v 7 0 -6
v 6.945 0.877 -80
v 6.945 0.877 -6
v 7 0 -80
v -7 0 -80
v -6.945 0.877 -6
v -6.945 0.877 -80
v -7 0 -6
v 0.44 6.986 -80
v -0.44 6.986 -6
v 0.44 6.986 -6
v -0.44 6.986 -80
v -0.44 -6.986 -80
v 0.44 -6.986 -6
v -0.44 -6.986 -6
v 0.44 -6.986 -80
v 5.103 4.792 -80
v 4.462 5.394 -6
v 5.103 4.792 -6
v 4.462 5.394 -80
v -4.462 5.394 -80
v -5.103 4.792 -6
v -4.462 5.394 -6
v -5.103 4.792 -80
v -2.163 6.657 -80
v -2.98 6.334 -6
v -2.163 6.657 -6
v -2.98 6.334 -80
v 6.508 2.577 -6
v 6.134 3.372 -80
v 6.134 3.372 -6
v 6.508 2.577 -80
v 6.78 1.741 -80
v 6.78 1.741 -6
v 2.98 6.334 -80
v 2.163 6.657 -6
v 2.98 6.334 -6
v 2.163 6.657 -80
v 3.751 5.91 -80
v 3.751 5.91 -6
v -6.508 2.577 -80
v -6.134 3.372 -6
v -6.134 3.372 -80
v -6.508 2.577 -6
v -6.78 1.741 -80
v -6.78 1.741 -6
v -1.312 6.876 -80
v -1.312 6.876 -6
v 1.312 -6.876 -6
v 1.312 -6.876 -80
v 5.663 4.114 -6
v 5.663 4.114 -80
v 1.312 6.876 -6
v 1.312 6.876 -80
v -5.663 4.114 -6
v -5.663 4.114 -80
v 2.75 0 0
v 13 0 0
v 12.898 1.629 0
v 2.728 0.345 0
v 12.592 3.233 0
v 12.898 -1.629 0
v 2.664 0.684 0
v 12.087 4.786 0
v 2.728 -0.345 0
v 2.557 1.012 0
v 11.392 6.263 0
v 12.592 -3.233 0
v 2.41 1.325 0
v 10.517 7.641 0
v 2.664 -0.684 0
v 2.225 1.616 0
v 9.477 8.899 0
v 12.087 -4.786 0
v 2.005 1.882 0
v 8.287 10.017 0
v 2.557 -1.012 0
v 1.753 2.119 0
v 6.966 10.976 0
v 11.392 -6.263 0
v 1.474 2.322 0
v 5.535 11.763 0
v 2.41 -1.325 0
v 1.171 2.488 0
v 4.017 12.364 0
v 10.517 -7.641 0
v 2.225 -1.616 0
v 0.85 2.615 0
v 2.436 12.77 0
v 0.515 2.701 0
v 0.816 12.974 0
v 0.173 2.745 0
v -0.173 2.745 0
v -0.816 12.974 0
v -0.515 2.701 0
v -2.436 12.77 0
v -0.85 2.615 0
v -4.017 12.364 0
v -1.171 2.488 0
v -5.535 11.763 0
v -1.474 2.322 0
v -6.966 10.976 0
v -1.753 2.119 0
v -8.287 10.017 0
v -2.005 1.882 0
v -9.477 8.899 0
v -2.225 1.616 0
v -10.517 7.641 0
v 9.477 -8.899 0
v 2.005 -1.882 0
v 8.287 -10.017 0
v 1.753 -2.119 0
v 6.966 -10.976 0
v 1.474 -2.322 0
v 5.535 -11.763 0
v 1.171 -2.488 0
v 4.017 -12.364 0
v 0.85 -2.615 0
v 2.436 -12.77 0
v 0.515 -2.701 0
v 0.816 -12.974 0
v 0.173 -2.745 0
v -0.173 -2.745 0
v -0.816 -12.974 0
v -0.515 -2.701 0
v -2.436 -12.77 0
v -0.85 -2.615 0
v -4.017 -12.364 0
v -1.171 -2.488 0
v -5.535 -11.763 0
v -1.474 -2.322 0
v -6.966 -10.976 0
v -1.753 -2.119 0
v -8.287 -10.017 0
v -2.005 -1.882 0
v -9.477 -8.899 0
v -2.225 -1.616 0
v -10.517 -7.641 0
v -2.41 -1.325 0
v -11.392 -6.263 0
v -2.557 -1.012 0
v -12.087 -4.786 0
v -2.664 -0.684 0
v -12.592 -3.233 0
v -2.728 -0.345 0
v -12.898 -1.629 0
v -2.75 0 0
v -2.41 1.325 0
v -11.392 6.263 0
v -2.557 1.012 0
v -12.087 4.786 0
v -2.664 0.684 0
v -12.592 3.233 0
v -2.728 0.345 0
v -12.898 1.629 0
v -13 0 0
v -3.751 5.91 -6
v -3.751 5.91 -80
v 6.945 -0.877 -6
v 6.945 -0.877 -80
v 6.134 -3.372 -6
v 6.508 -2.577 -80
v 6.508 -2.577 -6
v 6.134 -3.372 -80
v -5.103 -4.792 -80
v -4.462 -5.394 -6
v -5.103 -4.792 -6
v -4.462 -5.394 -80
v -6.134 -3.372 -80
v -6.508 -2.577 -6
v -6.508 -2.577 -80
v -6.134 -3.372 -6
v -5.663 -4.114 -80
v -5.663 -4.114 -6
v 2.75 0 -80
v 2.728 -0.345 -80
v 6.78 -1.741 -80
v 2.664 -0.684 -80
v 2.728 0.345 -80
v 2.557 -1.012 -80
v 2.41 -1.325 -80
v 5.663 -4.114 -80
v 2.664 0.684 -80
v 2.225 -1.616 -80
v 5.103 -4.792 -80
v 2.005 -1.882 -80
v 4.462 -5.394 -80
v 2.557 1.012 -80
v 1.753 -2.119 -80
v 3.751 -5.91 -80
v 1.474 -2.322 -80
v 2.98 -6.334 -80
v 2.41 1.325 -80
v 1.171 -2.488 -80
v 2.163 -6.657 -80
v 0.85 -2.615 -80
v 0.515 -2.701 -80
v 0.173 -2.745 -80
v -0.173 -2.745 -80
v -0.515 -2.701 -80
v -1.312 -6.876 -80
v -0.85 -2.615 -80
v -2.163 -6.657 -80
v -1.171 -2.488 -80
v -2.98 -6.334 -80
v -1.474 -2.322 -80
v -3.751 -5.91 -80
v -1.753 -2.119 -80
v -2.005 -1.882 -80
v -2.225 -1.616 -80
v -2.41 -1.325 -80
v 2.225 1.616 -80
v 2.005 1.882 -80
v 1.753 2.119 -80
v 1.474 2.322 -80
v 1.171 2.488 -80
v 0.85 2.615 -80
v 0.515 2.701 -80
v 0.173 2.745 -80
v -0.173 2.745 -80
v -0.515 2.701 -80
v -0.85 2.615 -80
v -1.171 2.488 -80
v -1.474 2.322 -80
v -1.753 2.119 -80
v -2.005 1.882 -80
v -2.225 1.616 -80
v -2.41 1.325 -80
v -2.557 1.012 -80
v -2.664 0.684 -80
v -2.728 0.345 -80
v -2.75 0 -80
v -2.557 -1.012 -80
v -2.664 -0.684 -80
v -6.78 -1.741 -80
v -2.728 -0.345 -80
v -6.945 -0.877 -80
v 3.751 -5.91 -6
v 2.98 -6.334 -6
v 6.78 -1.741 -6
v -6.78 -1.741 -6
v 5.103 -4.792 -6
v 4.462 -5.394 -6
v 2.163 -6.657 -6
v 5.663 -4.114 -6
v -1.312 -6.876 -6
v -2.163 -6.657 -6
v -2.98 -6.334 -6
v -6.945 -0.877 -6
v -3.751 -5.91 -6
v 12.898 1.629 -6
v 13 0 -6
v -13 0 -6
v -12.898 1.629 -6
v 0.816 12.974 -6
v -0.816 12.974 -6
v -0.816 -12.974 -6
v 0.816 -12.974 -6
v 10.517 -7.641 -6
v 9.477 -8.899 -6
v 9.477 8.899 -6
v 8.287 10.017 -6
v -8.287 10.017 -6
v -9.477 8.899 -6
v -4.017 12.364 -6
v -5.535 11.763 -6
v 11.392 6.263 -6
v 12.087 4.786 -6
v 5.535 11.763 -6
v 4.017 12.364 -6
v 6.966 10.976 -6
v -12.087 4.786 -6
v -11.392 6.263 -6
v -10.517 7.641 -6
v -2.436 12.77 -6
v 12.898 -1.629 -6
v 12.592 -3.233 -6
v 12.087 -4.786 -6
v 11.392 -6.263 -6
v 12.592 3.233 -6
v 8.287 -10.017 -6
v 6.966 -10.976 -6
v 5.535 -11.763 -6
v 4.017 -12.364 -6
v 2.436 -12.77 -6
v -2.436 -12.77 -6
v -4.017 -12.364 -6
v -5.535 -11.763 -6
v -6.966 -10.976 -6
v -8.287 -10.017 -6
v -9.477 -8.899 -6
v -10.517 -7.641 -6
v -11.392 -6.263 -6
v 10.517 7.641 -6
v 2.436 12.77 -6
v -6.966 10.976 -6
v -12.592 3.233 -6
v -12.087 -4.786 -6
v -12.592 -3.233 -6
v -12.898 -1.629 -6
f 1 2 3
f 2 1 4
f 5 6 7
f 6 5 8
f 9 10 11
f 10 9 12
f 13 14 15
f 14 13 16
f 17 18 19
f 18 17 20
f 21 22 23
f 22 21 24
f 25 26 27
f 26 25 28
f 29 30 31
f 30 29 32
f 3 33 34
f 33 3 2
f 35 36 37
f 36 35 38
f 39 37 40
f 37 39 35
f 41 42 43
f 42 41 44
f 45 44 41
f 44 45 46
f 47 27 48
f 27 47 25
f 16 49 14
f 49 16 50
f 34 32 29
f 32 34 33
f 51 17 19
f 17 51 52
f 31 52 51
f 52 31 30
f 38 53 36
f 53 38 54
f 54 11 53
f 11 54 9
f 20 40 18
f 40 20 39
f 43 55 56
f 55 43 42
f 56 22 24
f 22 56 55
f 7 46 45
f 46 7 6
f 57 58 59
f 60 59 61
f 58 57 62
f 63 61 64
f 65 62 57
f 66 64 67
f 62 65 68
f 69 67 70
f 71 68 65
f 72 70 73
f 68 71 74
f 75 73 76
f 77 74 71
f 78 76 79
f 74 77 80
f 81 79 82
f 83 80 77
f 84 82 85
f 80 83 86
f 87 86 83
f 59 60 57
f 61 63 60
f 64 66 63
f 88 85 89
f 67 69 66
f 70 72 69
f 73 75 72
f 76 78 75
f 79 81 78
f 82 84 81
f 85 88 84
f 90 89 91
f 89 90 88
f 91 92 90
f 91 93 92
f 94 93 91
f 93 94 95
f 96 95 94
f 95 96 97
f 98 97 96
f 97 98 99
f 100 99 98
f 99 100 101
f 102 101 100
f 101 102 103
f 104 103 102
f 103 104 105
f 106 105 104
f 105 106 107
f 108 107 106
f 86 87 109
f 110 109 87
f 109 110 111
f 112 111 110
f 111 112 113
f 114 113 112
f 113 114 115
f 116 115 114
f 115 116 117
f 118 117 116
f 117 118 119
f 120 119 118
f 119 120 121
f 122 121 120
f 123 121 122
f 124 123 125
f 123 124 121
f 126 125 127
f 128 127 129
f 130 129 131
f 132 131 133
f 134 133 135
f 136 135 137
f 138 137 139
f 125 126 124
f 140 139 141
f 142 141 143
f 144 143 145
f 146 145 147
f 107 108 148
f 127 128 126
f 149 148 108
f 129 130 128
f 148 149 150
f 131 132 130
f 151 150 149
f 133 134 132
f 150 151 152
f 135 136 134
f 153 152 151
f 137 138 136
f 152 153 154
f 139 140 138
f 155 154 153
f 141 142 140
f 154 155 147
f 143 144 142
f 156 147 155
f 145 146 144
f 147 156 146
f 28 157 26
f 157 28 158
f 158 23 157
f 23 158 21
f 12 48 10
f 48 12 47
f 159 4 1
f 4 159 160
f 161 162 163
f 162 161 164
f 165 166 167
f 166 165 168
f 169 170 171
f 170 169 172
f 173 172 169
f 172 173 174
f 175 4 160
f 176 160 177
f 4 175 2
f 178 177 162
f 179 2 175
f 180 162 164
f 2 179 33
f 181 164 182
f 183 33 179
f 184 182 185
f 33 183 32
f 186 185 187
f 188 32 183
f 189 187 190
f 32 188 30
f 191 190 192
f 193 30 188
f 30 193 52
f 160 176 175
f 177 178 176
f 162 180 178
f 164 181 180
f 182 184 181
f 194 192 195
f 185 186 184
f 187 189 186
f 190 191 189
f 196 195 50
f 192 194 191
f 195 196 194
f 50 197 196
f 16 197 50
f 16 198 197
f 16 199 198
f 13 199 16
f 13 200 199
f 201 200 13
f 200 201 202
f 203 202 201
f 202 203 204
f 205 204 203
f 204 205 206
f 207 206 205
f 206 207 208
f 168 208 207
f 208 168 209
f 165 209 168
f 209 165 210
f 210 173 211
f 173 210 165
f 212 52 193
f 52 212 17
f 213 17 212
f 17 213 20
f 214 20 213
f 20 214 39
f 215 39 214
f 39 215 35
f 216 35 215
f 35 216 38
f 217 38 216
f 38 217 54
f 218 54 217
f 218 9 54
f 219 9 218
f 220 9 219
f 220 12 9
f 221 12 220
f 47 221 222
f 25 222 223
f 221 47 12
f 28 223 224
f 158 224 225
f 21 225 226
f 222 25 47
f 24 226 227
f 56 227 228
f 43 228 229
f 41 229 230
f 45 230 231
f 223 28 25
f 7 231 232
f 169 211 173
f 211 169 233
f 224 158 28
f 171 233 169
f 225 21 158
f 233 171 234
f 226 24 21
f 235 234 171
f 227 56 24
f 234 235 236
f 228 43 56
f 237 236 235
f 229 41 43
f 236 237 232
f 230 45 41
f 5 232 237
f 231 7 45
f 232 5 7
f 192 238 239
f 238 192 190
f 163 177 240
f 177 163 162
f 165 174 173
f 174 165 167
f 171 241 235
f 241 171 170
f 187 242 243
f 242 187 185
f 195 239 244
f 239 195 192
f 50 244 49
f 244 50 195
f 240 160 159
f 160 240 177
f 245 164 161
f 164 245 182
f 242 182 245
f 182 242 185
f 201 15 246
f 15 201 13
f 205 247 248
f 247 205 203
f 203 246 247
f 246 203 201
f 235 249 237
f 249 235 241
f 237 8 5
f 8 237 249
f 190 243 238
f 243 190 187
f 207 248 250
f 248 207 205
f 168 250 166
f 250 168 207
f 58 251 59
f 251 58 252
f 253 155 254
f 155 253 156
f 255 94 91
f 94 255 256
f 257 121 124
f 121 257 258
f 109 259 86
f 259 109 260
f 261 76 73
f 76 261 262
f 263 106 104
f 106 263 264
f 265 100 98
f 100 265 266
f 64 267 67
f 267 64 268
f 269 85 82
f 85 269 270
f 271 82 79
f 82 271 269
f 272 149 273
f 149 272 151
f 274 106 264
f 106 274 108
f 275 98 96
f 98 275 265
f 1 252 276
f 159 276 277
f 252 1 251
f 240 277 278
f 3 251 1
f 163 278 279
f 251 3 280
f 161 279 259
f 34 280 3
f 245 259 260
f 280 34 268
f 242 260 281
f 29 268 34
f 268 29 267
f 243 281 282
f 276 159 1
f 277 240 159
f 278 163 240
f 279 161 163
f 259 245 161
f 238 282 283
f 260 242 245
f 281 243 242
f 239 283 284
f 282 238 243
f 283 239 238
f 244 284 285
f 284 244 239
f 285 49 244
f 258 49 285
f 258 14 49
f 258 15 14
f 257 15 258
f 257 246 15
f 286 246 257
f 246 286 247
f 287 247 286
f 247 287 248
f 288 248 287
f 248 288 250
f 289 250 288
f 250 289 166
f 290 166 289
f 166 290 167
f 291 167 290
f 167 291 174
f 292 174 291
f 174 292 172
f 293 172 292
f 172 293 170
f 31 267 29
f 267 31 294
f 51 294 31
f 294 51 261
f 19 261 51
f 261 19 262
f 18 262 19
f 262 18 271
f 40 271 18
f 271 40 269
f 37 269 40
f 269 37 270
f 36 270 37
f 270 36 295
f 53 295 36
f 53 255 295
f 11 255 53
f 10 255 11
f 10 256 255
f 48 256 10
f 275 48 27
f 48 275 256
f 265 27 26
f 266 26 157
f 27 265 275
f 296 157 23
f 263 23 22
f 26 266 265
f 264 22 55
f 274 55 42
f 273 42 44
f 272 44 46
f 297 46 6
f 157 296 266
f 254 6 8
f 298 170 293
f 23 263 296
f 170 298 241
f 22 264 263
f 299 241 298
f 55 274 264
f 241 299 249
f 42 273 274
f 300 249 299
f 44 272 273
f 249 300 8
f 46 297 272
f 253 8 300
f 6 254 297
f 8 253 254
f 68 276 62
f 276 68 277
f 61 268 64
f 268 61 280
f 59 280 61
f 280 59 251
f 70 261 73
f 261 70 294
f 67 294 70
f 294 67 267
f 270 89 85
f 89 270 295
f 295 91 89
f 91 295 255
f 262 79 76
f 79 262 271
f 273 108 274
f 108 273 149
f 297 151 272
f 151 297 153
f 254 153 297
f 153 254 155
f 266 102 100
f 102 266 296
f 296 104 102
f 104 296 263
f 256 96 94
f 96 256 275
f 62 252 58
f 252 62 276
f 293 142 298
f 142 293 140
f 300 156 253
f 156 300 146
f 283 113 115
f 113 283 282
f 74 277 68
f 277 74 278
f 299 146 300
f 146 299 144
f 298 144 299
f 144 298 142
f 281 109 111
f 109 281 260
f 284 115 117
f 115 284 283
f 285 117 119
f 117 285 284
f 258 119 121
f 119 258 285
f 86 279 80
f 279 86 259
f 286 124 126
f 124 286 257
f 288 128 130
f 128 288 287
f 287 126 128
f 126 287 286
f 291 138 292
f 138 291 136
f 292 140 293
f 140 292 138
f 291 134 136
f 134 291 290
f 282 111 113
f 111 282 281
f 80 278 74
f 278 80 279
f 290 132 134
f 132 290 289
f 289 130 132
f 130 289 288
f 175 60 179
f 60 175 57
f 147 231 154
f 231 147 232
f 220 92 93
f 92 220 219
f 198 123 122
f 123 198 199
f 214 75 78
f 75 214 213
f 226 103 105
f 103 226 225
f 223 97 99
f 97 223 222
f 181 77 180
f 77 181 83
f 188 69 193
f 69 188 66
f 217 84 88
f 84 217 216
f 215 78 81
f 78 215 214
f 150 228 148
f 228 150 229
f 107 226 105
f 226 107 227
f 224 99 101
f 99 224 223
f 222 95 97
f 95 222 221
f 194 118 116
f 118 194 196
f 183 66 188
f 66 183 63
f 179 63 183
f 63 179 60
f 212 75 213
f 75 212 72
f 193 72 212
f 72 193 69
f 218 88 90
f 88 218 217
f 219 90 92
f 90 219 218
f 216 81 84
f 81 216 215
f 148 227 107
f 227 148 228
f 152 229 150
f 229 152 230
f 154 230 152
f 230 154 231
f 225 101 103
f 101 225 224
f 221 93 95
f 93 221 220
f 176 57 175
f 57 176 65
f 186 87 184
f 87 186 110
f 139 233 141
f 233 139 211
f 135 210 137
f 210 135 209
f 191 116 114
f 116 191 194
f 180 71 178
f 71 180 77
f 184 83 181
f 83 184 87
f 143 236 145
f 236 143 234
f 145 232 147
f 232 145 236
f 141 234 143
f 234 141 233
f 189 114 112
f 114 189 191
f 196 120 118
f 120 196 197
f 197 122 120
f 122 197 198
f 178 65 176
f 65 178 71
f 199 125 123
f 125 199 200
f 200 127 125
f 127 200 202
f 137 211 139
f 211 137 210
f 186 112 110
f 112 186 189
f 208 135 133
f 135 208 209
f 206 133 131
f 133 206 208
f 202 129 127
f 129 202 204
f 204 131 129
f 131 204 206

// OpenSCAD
$fn = 50;


difference() {
	union() {
		translate(v = [0, 0, -80.0000000000]) {
			cylinder(h = 80, r = 7.0000000000);
		}
		translate(v = [0, 0, -6.0000000000]) {
			cylinder(h = 6, r = 13.0000000000);
		}
	}
	union() {
		#translate(v = [0, 0, -80]) {
			cylinder(h = 80, r = 2.7500000000);
		}
	}
}
